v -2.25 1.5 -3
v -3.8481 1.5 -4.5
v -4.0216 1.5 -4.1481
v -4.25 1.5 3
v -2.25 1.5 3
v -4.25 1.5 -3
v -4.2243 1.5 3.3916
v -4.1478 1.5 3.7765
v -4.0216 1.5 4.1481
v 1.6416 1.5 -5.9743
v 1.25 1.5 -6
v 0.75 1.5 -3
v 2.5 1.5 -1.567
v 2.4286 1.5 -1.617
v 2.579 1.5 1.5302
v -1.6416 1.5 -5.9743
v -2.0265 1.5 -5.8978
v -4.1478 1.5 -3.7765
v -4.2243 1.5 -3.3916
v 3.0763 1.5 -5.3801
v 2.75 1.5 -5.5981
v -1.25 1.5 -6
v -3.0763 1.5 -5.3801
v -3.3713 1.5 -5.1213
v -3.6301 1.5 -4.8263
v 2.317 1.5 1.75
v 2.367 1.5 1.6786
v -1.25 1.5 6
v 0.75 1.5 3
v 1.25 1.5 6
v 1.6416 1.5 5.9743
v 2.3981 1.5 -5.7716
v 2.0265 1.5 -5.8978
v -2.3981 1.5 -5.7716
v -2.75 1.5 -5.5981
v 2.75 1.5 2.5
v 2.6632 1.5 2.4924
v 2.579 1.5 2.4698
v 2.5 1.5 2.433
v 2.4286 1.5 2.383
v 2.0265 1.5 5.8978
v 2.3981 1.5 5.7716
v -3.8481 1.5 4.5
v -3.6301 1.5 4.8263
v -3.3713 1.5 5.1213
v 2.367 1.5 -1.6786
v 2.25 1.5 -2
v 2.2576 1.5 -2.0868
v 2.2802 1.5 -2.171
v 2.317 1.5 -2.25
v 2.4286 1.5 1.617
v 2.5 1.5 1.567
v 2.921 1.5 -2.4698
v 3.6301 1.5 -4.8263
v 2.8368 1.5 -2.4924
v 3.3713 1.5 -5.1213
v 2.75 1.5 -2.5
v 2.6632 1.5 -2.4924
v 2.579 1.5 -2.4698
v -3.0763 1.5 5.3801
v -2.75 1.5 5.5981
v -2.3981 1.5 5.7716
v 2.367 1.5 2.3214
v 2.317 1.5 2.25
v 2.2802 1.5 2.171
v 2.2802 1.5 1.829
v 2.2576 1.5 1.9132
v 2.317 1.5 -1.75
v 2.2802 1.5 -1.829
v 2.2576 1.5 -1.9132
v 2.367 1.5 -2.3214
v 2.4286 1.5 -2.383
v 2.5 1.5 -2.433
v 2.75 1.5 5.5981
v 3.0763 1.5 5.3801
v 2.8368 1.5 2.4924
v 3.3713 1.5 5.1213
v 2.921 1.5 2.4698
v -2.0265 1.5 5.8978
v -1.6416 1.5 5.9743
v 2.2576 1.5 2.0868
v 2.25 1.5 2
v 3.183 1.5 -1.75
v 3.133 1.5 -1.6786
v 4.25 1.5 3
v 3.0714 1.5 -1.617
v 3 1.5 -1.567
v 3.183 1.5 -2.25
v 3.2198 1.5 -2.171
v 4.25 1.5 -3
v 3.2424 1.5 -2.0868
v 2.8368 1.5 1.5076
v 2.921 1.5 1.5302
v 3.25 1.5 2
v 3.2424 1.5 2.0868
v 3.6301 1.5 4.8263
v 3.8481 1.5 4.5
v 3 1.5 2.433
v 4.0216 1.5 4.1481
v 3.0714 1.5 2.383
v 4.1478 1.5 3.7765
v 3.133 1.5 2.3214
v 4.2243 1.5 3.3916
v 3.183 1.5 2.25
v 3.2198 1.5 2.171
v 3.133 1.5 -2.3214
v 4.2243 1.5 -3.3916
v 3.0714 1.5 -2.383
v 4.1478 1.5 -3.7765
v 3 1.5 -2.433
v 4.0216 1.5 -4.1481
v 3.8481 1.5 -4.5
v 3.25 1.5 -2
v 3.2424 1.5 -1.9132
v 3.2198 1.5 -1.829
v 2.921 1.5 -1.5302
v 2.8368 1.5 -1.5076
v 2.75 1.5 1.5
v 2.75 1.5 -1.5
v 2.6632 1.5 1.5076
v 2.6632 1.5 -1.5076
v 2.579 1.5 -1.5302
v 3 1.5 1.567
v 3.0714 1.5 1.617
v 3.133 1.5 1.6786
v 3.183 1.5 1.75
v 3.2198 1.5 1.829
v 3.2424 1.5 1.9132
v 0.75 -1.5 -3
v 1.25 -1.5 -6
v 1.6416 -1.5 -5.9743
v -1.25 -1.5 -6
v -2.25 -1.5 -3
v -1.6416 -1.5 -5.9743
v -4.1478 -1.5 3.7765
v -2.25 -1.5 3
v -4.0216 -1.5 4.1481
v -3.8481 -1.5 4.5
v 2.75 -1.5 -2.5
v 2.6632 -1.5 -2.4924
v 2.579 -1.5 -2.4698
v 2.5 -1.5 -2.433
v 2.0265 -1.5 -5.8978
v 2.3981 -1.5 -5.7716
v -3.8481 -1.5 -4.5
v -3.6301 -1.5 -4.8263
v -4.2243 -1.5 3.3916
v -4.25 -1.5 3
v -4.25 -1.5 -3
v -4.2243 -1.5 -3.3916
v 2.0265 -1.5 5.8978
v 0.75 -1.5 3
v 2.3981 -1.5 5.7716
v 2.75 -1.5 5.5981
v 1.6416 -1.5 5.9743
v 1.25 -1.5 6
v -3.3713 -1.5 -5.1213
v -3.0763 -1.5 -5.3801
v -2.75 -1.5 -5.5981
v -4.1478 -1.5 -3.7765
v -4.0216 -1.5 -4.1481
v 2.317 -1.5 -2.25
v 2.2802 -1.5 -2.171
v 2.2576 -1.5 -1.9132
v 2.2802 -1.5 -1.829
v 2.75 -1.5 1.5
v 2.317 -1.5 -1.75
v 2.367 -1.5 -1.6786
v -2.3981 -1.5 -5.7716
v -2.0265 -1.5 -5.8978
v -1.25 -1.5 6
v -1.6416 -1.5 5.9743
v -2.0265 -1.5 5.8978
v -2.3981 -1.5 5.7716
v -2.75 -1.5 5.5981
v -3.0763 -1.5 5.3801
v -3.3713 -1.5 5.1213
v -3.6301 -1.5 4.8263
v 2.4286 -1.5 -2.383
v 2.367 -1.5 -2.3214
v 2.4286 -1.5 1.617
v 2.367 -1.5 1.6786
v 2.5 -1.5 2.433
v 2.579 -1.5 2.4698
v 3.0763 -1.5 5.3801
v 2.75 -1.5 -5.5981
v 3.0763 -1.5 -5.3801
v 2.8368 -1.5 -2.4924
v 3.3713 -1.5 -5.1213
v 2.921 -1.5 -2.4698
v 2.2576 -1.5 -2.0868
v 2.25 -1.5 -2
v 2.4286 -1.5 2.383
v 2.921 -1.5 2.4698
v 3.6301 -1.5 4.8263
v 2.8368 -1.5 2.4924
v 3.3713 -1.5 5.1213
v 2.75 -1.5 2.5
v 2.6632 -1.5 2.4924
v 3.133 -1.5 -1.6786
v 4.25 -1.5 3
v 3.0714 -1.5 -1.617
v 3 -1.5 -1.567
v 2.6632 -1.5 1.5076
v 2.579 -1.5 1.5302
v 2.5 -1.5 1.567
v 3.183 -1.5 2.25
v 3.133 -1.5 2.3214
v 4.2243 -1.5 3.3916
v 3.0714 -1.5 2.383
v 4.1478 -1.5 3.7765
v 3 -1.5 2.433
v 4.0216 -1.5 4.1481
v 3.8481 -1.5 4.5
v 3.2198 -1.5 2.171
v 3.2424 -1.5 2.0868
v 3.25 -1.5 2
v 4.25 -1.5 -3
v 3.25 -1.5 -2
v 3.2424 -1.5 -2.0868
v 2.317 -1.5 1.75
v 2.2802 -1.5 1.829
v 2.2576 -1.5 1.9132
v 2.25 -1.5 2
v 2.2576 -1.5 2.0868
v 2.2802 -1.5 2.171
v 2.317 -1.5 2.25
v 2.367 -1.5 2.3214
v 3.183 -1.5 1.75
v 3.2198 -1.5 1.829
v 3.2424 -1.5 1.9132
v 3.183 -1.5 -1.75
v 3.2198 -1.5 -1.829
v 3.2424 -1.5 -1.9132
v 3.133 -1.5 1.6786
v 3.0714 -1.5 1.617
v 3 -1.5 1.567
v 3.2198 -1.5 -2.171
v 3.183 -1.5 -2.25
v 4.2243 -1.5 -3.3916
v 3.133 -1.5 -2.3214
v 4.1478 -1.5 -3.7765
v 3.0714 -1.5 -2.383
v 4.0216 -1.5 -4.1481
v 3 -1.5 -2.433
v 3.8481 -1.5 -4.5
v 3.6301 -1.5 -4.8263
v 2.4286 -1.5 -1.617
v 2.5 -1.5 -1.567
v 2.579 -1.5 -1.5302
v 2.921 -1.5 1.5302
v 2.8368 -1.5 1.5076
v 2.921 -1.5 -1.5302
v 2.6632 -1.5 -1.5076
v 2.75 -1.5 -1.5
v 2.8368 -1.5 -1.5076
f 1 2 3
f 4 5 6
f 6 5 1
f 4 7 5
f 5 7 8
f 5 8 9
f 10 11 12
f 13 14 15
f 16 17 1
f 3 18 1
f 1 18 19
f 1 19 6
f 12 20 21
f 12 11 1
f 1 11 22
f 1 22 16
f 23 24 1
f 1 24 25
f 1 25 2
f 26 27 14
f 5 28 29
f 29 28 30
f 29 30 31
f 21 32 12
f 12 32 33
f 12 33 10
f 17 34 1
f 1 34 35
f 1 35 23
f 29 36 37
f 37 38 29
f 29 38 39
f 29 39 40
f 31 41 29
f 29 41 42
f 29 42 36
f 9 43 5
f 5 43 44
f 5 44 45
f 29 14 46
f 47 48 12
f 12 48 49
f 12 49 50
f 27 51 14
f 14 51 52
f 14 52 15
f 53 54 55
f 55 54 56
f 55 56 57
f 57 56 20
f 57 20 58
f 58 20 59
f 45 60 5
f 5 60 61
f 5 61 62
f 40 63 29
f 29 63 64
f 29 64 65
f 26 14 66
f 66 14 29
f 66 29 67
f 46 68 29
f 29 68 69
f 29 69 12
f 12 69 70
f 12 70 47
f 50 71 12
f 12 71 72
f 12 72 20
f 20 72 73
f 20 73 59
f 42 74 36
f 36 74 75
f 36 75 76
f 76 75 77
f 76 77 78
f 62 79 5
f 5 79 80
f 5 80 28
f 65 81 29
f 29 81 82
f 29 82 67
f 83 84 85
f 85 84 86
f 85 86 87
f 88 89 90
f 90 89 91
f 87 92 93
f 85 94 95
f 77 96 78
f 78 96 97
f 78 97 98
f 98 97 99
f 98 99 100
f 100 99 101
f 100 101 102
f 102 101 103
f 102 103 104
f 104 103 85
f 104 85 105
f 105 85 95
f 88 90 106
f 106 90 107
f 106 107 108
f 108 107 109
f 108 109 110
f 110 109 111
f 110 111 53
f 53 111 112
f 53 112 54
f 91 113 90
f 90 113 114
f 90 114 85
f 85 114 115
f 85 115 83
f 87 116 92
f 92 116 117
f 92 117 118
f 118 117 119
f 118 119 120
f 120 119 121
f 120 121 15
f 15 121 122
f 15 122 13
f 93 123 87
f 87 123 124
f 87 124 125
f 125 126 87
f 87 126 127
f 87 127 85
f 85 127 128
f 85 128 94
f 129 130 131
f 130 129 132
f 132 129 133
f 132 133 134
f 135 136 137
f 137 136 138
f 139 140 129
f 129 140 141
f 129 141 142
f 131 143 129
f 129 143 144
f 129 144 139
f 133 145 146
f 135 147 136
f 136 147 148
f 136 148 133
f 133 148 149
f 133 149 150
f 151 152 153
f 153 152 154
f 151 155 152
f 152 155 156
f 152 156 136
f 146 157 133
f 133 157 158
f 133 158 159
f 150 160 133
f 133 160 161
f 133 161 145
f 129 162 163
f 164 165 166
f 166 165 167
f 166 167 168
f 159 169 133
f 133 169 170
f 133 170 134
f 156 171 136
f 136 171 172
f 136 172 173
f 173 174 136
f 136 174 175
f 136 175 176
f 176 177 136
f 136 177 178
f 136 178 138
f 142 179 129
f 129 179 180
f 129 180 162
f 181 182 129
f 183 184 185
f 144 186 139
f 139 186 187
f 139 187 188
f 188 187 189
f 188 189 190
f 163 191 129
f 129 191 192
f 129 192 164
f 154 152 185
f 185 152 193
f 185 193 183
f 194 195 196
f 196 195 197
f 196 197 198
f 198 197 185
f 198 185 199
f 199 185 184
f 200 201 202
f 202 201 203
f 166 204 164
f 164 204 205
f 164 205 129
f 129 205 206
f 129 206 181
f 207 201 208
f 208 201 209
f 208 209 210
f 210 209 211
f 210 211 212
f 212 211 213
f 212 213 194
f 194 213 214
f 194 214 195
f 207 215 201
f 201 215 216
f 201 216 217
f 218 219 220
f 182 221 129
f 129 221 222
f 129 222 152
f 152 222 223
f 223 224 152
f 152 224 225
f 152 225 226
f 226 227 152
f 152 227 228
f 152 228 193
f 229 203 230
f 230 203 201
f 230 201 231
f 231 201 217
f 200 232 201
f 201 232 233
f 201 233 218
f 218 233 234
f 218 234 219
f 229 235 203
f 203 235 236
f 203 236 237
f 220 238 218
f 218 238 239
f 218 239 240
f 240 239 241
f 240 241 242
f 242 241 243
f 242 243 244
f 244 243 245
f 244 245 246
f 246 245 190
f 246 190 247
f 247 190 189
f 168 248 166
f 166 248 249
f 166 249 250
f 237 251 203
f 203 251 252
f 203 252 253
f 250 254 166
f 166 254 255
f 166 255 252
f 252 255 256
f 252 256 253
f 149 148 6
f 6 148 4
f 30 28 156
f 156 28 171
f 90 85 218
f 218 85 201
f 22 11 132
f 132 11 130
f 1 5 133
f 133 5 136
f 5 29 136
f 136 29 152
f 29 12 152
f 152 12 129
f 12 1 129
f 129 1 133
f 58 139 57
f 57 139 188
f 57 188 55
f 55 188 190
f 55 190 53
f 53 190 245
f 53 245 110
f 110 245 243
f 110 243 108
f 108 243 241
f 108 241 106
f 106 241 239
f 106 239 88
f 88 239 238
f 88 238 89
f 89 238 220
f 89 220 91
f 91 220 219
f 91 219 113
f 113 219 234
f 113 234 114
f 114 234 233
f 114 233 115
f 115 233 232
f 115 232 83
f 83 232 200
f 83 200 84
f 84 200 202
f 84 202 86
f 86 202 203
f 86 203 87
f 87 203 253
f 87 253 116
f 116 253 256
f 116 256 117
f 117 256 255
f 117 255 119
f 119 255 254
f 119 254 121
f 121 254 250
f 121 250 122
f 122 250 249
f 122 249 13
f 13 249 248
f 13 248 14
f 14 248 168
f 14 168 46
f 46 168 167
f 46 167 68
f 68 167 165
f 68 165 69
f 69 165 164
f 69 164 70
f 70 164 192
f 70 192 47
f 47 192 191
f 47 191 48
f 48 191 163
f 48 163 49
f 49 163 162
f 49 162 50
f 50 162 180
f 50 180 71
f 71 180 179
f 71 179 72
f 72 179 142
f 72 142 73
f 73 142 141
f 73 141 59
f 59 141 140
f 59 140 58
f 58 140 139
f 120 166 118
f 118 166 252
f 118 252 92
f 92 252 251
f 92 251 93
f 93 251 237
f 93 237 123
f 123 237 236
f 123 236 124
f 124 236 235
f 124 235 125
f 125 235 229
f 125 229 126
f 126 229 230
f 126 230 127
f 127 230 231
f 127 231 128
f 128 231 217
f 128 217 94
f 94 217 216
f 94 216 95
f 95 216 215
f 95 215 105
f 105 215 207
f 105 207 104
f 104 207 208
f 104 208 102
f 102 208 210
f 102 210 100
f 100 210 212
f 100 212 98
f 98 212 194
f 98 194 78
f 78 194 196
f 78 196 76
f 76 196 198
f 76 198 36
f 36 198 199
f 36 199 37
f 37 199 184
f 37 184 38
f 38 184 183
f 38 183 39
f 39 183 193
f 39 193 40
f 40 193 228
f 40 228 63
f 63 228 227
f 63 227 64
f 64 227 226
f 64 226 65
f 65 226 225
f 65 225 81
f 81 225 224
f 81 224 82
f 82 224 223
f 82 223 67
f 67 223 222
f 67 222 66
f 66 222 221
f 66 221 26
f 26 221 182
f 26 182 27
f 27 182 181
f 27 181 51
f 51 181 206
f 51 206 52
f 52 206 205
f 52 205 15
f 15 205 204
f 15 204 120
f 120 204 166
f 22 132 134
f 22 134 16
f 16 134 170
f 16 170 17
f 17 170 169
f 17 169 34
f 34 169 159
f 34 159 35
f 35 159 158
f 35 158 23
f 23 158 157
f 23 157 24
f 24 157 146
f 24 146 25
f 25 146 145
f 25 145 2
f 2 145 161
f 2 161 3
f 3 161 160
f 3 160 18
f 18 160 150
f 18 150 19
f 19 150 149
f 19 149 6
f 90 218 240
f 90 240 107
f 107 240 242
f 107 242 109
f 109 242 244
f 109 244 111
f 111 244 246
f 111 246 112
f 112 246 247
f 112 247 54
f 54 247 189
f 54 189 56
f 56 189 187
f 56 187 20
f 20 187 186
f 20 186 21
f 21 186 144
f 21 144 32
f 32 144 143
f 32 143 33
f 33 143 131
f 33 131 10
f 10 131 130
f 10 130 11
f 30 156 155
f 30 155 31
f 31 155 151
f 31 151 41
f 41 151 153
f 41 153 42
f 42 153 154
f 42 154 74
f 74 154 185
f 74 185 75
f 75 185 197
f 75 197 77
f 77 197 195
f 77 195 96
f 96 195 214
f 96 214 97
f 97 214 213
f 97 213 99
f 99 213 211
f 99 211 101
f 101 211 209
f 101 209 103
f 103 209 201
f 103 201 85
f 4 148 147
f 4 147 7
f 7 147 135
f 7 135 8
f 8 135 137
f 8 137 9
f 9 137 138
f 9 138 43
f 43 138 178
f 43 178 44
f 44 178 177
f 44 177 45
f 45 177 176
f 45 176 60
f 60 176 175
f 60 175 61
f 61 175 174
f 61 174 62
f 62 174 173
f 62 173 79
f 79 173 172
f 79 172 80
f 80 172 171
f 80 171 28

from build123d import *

# Parameters (mm, degrees)
SKETCH1_W           = 8.5
SKETCH1_H           = 12
SKETCH1_R           = 0.5
SKETCH1_W_2         = 3
SKETCH1_H_2         = 6
BOSS_EXTRUDE1_DEPTH = 1.5
FILLET1_R           = 3


with BuildPart() as part:
    # Sketch1 → Boss-Extrude1 (new body, symmetric)
    with BuildSketch(Plane(origin=(0, 0, 0), x_dir=(1, 0, 0), z_dir=(0, 1, 0))):
        Rectangle(SKETCH1_W, SKETCH1_H)
        with Locations((2.75, 2)):
            Circle(SKETCH1_R, mode=Mode.SUBTRACT)
        with Locations((2.75, -2)):
            Circle(SKETCH1_R, mode=Mode.SUBTRACT)
        with Locations((-0.75, 0)):
            Rectangle(SKETCH1_W_2, SKETCH1_H_2, mode=Mode.SUBTRACT)
    extrude(amount=BOSS_EXTRUDE1_DEPTH, both=True)

    # Fillet1
    fillet1_edges = [part.edges().sort_by_distance(p)[0] for p in [
        (-4.25, 0, -6),
        (4.25, 0, -6),
        (4.25, 0, 6),
        (-4.25, 0, 6),
    ]]
    fillet(fillet1_edges, radius=FILLET1_R)


solid = part.part
